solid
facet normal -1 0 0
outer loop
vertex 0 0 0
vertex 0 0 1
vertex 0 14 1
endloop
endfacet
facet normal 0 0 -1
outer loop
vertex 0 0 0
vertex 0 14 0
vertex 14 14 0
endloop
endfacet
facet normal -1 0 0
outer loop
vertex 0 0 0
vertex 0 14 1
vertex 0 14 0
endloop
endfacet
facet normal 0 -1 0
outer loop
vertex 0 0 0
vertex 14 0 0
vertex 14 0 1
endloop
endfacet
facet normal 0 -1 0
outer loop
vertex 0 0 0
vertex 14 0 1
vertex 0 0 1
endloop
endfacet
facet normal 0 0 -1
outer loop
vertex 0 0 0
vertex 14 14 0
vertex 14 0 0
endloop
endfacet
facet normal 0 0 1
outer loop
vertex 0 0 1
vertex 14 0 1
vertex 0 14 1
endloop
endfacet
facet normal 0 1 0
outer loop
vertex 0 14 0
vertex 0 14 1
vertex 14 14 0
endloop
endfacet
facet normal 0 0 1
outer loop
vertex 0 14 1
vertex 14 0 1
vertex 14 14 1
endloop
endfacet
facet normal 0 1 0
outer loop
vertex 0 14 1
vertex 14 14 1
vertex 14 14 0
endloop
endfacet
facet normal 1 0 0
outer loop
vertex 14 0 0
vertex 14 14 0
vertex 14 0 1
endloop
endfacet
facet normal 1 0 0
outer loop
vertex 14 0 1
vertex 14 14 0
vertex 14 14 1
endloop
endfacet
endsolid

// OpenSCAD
/* Warning, this is a very basic generator with a lot of approximation 
input data : [TQFP, 8MW, 14x14x1.0mm, 128, , A, C04-00666A]
generated by com.zoubworld.electronics.cad.model3d.Basic
Date : Sun Feb 15 10:50:49 CET 2026
*/

//body
color("black")
translate([0,0,0])
cube([14.0,14.0,1.0], center=false);
